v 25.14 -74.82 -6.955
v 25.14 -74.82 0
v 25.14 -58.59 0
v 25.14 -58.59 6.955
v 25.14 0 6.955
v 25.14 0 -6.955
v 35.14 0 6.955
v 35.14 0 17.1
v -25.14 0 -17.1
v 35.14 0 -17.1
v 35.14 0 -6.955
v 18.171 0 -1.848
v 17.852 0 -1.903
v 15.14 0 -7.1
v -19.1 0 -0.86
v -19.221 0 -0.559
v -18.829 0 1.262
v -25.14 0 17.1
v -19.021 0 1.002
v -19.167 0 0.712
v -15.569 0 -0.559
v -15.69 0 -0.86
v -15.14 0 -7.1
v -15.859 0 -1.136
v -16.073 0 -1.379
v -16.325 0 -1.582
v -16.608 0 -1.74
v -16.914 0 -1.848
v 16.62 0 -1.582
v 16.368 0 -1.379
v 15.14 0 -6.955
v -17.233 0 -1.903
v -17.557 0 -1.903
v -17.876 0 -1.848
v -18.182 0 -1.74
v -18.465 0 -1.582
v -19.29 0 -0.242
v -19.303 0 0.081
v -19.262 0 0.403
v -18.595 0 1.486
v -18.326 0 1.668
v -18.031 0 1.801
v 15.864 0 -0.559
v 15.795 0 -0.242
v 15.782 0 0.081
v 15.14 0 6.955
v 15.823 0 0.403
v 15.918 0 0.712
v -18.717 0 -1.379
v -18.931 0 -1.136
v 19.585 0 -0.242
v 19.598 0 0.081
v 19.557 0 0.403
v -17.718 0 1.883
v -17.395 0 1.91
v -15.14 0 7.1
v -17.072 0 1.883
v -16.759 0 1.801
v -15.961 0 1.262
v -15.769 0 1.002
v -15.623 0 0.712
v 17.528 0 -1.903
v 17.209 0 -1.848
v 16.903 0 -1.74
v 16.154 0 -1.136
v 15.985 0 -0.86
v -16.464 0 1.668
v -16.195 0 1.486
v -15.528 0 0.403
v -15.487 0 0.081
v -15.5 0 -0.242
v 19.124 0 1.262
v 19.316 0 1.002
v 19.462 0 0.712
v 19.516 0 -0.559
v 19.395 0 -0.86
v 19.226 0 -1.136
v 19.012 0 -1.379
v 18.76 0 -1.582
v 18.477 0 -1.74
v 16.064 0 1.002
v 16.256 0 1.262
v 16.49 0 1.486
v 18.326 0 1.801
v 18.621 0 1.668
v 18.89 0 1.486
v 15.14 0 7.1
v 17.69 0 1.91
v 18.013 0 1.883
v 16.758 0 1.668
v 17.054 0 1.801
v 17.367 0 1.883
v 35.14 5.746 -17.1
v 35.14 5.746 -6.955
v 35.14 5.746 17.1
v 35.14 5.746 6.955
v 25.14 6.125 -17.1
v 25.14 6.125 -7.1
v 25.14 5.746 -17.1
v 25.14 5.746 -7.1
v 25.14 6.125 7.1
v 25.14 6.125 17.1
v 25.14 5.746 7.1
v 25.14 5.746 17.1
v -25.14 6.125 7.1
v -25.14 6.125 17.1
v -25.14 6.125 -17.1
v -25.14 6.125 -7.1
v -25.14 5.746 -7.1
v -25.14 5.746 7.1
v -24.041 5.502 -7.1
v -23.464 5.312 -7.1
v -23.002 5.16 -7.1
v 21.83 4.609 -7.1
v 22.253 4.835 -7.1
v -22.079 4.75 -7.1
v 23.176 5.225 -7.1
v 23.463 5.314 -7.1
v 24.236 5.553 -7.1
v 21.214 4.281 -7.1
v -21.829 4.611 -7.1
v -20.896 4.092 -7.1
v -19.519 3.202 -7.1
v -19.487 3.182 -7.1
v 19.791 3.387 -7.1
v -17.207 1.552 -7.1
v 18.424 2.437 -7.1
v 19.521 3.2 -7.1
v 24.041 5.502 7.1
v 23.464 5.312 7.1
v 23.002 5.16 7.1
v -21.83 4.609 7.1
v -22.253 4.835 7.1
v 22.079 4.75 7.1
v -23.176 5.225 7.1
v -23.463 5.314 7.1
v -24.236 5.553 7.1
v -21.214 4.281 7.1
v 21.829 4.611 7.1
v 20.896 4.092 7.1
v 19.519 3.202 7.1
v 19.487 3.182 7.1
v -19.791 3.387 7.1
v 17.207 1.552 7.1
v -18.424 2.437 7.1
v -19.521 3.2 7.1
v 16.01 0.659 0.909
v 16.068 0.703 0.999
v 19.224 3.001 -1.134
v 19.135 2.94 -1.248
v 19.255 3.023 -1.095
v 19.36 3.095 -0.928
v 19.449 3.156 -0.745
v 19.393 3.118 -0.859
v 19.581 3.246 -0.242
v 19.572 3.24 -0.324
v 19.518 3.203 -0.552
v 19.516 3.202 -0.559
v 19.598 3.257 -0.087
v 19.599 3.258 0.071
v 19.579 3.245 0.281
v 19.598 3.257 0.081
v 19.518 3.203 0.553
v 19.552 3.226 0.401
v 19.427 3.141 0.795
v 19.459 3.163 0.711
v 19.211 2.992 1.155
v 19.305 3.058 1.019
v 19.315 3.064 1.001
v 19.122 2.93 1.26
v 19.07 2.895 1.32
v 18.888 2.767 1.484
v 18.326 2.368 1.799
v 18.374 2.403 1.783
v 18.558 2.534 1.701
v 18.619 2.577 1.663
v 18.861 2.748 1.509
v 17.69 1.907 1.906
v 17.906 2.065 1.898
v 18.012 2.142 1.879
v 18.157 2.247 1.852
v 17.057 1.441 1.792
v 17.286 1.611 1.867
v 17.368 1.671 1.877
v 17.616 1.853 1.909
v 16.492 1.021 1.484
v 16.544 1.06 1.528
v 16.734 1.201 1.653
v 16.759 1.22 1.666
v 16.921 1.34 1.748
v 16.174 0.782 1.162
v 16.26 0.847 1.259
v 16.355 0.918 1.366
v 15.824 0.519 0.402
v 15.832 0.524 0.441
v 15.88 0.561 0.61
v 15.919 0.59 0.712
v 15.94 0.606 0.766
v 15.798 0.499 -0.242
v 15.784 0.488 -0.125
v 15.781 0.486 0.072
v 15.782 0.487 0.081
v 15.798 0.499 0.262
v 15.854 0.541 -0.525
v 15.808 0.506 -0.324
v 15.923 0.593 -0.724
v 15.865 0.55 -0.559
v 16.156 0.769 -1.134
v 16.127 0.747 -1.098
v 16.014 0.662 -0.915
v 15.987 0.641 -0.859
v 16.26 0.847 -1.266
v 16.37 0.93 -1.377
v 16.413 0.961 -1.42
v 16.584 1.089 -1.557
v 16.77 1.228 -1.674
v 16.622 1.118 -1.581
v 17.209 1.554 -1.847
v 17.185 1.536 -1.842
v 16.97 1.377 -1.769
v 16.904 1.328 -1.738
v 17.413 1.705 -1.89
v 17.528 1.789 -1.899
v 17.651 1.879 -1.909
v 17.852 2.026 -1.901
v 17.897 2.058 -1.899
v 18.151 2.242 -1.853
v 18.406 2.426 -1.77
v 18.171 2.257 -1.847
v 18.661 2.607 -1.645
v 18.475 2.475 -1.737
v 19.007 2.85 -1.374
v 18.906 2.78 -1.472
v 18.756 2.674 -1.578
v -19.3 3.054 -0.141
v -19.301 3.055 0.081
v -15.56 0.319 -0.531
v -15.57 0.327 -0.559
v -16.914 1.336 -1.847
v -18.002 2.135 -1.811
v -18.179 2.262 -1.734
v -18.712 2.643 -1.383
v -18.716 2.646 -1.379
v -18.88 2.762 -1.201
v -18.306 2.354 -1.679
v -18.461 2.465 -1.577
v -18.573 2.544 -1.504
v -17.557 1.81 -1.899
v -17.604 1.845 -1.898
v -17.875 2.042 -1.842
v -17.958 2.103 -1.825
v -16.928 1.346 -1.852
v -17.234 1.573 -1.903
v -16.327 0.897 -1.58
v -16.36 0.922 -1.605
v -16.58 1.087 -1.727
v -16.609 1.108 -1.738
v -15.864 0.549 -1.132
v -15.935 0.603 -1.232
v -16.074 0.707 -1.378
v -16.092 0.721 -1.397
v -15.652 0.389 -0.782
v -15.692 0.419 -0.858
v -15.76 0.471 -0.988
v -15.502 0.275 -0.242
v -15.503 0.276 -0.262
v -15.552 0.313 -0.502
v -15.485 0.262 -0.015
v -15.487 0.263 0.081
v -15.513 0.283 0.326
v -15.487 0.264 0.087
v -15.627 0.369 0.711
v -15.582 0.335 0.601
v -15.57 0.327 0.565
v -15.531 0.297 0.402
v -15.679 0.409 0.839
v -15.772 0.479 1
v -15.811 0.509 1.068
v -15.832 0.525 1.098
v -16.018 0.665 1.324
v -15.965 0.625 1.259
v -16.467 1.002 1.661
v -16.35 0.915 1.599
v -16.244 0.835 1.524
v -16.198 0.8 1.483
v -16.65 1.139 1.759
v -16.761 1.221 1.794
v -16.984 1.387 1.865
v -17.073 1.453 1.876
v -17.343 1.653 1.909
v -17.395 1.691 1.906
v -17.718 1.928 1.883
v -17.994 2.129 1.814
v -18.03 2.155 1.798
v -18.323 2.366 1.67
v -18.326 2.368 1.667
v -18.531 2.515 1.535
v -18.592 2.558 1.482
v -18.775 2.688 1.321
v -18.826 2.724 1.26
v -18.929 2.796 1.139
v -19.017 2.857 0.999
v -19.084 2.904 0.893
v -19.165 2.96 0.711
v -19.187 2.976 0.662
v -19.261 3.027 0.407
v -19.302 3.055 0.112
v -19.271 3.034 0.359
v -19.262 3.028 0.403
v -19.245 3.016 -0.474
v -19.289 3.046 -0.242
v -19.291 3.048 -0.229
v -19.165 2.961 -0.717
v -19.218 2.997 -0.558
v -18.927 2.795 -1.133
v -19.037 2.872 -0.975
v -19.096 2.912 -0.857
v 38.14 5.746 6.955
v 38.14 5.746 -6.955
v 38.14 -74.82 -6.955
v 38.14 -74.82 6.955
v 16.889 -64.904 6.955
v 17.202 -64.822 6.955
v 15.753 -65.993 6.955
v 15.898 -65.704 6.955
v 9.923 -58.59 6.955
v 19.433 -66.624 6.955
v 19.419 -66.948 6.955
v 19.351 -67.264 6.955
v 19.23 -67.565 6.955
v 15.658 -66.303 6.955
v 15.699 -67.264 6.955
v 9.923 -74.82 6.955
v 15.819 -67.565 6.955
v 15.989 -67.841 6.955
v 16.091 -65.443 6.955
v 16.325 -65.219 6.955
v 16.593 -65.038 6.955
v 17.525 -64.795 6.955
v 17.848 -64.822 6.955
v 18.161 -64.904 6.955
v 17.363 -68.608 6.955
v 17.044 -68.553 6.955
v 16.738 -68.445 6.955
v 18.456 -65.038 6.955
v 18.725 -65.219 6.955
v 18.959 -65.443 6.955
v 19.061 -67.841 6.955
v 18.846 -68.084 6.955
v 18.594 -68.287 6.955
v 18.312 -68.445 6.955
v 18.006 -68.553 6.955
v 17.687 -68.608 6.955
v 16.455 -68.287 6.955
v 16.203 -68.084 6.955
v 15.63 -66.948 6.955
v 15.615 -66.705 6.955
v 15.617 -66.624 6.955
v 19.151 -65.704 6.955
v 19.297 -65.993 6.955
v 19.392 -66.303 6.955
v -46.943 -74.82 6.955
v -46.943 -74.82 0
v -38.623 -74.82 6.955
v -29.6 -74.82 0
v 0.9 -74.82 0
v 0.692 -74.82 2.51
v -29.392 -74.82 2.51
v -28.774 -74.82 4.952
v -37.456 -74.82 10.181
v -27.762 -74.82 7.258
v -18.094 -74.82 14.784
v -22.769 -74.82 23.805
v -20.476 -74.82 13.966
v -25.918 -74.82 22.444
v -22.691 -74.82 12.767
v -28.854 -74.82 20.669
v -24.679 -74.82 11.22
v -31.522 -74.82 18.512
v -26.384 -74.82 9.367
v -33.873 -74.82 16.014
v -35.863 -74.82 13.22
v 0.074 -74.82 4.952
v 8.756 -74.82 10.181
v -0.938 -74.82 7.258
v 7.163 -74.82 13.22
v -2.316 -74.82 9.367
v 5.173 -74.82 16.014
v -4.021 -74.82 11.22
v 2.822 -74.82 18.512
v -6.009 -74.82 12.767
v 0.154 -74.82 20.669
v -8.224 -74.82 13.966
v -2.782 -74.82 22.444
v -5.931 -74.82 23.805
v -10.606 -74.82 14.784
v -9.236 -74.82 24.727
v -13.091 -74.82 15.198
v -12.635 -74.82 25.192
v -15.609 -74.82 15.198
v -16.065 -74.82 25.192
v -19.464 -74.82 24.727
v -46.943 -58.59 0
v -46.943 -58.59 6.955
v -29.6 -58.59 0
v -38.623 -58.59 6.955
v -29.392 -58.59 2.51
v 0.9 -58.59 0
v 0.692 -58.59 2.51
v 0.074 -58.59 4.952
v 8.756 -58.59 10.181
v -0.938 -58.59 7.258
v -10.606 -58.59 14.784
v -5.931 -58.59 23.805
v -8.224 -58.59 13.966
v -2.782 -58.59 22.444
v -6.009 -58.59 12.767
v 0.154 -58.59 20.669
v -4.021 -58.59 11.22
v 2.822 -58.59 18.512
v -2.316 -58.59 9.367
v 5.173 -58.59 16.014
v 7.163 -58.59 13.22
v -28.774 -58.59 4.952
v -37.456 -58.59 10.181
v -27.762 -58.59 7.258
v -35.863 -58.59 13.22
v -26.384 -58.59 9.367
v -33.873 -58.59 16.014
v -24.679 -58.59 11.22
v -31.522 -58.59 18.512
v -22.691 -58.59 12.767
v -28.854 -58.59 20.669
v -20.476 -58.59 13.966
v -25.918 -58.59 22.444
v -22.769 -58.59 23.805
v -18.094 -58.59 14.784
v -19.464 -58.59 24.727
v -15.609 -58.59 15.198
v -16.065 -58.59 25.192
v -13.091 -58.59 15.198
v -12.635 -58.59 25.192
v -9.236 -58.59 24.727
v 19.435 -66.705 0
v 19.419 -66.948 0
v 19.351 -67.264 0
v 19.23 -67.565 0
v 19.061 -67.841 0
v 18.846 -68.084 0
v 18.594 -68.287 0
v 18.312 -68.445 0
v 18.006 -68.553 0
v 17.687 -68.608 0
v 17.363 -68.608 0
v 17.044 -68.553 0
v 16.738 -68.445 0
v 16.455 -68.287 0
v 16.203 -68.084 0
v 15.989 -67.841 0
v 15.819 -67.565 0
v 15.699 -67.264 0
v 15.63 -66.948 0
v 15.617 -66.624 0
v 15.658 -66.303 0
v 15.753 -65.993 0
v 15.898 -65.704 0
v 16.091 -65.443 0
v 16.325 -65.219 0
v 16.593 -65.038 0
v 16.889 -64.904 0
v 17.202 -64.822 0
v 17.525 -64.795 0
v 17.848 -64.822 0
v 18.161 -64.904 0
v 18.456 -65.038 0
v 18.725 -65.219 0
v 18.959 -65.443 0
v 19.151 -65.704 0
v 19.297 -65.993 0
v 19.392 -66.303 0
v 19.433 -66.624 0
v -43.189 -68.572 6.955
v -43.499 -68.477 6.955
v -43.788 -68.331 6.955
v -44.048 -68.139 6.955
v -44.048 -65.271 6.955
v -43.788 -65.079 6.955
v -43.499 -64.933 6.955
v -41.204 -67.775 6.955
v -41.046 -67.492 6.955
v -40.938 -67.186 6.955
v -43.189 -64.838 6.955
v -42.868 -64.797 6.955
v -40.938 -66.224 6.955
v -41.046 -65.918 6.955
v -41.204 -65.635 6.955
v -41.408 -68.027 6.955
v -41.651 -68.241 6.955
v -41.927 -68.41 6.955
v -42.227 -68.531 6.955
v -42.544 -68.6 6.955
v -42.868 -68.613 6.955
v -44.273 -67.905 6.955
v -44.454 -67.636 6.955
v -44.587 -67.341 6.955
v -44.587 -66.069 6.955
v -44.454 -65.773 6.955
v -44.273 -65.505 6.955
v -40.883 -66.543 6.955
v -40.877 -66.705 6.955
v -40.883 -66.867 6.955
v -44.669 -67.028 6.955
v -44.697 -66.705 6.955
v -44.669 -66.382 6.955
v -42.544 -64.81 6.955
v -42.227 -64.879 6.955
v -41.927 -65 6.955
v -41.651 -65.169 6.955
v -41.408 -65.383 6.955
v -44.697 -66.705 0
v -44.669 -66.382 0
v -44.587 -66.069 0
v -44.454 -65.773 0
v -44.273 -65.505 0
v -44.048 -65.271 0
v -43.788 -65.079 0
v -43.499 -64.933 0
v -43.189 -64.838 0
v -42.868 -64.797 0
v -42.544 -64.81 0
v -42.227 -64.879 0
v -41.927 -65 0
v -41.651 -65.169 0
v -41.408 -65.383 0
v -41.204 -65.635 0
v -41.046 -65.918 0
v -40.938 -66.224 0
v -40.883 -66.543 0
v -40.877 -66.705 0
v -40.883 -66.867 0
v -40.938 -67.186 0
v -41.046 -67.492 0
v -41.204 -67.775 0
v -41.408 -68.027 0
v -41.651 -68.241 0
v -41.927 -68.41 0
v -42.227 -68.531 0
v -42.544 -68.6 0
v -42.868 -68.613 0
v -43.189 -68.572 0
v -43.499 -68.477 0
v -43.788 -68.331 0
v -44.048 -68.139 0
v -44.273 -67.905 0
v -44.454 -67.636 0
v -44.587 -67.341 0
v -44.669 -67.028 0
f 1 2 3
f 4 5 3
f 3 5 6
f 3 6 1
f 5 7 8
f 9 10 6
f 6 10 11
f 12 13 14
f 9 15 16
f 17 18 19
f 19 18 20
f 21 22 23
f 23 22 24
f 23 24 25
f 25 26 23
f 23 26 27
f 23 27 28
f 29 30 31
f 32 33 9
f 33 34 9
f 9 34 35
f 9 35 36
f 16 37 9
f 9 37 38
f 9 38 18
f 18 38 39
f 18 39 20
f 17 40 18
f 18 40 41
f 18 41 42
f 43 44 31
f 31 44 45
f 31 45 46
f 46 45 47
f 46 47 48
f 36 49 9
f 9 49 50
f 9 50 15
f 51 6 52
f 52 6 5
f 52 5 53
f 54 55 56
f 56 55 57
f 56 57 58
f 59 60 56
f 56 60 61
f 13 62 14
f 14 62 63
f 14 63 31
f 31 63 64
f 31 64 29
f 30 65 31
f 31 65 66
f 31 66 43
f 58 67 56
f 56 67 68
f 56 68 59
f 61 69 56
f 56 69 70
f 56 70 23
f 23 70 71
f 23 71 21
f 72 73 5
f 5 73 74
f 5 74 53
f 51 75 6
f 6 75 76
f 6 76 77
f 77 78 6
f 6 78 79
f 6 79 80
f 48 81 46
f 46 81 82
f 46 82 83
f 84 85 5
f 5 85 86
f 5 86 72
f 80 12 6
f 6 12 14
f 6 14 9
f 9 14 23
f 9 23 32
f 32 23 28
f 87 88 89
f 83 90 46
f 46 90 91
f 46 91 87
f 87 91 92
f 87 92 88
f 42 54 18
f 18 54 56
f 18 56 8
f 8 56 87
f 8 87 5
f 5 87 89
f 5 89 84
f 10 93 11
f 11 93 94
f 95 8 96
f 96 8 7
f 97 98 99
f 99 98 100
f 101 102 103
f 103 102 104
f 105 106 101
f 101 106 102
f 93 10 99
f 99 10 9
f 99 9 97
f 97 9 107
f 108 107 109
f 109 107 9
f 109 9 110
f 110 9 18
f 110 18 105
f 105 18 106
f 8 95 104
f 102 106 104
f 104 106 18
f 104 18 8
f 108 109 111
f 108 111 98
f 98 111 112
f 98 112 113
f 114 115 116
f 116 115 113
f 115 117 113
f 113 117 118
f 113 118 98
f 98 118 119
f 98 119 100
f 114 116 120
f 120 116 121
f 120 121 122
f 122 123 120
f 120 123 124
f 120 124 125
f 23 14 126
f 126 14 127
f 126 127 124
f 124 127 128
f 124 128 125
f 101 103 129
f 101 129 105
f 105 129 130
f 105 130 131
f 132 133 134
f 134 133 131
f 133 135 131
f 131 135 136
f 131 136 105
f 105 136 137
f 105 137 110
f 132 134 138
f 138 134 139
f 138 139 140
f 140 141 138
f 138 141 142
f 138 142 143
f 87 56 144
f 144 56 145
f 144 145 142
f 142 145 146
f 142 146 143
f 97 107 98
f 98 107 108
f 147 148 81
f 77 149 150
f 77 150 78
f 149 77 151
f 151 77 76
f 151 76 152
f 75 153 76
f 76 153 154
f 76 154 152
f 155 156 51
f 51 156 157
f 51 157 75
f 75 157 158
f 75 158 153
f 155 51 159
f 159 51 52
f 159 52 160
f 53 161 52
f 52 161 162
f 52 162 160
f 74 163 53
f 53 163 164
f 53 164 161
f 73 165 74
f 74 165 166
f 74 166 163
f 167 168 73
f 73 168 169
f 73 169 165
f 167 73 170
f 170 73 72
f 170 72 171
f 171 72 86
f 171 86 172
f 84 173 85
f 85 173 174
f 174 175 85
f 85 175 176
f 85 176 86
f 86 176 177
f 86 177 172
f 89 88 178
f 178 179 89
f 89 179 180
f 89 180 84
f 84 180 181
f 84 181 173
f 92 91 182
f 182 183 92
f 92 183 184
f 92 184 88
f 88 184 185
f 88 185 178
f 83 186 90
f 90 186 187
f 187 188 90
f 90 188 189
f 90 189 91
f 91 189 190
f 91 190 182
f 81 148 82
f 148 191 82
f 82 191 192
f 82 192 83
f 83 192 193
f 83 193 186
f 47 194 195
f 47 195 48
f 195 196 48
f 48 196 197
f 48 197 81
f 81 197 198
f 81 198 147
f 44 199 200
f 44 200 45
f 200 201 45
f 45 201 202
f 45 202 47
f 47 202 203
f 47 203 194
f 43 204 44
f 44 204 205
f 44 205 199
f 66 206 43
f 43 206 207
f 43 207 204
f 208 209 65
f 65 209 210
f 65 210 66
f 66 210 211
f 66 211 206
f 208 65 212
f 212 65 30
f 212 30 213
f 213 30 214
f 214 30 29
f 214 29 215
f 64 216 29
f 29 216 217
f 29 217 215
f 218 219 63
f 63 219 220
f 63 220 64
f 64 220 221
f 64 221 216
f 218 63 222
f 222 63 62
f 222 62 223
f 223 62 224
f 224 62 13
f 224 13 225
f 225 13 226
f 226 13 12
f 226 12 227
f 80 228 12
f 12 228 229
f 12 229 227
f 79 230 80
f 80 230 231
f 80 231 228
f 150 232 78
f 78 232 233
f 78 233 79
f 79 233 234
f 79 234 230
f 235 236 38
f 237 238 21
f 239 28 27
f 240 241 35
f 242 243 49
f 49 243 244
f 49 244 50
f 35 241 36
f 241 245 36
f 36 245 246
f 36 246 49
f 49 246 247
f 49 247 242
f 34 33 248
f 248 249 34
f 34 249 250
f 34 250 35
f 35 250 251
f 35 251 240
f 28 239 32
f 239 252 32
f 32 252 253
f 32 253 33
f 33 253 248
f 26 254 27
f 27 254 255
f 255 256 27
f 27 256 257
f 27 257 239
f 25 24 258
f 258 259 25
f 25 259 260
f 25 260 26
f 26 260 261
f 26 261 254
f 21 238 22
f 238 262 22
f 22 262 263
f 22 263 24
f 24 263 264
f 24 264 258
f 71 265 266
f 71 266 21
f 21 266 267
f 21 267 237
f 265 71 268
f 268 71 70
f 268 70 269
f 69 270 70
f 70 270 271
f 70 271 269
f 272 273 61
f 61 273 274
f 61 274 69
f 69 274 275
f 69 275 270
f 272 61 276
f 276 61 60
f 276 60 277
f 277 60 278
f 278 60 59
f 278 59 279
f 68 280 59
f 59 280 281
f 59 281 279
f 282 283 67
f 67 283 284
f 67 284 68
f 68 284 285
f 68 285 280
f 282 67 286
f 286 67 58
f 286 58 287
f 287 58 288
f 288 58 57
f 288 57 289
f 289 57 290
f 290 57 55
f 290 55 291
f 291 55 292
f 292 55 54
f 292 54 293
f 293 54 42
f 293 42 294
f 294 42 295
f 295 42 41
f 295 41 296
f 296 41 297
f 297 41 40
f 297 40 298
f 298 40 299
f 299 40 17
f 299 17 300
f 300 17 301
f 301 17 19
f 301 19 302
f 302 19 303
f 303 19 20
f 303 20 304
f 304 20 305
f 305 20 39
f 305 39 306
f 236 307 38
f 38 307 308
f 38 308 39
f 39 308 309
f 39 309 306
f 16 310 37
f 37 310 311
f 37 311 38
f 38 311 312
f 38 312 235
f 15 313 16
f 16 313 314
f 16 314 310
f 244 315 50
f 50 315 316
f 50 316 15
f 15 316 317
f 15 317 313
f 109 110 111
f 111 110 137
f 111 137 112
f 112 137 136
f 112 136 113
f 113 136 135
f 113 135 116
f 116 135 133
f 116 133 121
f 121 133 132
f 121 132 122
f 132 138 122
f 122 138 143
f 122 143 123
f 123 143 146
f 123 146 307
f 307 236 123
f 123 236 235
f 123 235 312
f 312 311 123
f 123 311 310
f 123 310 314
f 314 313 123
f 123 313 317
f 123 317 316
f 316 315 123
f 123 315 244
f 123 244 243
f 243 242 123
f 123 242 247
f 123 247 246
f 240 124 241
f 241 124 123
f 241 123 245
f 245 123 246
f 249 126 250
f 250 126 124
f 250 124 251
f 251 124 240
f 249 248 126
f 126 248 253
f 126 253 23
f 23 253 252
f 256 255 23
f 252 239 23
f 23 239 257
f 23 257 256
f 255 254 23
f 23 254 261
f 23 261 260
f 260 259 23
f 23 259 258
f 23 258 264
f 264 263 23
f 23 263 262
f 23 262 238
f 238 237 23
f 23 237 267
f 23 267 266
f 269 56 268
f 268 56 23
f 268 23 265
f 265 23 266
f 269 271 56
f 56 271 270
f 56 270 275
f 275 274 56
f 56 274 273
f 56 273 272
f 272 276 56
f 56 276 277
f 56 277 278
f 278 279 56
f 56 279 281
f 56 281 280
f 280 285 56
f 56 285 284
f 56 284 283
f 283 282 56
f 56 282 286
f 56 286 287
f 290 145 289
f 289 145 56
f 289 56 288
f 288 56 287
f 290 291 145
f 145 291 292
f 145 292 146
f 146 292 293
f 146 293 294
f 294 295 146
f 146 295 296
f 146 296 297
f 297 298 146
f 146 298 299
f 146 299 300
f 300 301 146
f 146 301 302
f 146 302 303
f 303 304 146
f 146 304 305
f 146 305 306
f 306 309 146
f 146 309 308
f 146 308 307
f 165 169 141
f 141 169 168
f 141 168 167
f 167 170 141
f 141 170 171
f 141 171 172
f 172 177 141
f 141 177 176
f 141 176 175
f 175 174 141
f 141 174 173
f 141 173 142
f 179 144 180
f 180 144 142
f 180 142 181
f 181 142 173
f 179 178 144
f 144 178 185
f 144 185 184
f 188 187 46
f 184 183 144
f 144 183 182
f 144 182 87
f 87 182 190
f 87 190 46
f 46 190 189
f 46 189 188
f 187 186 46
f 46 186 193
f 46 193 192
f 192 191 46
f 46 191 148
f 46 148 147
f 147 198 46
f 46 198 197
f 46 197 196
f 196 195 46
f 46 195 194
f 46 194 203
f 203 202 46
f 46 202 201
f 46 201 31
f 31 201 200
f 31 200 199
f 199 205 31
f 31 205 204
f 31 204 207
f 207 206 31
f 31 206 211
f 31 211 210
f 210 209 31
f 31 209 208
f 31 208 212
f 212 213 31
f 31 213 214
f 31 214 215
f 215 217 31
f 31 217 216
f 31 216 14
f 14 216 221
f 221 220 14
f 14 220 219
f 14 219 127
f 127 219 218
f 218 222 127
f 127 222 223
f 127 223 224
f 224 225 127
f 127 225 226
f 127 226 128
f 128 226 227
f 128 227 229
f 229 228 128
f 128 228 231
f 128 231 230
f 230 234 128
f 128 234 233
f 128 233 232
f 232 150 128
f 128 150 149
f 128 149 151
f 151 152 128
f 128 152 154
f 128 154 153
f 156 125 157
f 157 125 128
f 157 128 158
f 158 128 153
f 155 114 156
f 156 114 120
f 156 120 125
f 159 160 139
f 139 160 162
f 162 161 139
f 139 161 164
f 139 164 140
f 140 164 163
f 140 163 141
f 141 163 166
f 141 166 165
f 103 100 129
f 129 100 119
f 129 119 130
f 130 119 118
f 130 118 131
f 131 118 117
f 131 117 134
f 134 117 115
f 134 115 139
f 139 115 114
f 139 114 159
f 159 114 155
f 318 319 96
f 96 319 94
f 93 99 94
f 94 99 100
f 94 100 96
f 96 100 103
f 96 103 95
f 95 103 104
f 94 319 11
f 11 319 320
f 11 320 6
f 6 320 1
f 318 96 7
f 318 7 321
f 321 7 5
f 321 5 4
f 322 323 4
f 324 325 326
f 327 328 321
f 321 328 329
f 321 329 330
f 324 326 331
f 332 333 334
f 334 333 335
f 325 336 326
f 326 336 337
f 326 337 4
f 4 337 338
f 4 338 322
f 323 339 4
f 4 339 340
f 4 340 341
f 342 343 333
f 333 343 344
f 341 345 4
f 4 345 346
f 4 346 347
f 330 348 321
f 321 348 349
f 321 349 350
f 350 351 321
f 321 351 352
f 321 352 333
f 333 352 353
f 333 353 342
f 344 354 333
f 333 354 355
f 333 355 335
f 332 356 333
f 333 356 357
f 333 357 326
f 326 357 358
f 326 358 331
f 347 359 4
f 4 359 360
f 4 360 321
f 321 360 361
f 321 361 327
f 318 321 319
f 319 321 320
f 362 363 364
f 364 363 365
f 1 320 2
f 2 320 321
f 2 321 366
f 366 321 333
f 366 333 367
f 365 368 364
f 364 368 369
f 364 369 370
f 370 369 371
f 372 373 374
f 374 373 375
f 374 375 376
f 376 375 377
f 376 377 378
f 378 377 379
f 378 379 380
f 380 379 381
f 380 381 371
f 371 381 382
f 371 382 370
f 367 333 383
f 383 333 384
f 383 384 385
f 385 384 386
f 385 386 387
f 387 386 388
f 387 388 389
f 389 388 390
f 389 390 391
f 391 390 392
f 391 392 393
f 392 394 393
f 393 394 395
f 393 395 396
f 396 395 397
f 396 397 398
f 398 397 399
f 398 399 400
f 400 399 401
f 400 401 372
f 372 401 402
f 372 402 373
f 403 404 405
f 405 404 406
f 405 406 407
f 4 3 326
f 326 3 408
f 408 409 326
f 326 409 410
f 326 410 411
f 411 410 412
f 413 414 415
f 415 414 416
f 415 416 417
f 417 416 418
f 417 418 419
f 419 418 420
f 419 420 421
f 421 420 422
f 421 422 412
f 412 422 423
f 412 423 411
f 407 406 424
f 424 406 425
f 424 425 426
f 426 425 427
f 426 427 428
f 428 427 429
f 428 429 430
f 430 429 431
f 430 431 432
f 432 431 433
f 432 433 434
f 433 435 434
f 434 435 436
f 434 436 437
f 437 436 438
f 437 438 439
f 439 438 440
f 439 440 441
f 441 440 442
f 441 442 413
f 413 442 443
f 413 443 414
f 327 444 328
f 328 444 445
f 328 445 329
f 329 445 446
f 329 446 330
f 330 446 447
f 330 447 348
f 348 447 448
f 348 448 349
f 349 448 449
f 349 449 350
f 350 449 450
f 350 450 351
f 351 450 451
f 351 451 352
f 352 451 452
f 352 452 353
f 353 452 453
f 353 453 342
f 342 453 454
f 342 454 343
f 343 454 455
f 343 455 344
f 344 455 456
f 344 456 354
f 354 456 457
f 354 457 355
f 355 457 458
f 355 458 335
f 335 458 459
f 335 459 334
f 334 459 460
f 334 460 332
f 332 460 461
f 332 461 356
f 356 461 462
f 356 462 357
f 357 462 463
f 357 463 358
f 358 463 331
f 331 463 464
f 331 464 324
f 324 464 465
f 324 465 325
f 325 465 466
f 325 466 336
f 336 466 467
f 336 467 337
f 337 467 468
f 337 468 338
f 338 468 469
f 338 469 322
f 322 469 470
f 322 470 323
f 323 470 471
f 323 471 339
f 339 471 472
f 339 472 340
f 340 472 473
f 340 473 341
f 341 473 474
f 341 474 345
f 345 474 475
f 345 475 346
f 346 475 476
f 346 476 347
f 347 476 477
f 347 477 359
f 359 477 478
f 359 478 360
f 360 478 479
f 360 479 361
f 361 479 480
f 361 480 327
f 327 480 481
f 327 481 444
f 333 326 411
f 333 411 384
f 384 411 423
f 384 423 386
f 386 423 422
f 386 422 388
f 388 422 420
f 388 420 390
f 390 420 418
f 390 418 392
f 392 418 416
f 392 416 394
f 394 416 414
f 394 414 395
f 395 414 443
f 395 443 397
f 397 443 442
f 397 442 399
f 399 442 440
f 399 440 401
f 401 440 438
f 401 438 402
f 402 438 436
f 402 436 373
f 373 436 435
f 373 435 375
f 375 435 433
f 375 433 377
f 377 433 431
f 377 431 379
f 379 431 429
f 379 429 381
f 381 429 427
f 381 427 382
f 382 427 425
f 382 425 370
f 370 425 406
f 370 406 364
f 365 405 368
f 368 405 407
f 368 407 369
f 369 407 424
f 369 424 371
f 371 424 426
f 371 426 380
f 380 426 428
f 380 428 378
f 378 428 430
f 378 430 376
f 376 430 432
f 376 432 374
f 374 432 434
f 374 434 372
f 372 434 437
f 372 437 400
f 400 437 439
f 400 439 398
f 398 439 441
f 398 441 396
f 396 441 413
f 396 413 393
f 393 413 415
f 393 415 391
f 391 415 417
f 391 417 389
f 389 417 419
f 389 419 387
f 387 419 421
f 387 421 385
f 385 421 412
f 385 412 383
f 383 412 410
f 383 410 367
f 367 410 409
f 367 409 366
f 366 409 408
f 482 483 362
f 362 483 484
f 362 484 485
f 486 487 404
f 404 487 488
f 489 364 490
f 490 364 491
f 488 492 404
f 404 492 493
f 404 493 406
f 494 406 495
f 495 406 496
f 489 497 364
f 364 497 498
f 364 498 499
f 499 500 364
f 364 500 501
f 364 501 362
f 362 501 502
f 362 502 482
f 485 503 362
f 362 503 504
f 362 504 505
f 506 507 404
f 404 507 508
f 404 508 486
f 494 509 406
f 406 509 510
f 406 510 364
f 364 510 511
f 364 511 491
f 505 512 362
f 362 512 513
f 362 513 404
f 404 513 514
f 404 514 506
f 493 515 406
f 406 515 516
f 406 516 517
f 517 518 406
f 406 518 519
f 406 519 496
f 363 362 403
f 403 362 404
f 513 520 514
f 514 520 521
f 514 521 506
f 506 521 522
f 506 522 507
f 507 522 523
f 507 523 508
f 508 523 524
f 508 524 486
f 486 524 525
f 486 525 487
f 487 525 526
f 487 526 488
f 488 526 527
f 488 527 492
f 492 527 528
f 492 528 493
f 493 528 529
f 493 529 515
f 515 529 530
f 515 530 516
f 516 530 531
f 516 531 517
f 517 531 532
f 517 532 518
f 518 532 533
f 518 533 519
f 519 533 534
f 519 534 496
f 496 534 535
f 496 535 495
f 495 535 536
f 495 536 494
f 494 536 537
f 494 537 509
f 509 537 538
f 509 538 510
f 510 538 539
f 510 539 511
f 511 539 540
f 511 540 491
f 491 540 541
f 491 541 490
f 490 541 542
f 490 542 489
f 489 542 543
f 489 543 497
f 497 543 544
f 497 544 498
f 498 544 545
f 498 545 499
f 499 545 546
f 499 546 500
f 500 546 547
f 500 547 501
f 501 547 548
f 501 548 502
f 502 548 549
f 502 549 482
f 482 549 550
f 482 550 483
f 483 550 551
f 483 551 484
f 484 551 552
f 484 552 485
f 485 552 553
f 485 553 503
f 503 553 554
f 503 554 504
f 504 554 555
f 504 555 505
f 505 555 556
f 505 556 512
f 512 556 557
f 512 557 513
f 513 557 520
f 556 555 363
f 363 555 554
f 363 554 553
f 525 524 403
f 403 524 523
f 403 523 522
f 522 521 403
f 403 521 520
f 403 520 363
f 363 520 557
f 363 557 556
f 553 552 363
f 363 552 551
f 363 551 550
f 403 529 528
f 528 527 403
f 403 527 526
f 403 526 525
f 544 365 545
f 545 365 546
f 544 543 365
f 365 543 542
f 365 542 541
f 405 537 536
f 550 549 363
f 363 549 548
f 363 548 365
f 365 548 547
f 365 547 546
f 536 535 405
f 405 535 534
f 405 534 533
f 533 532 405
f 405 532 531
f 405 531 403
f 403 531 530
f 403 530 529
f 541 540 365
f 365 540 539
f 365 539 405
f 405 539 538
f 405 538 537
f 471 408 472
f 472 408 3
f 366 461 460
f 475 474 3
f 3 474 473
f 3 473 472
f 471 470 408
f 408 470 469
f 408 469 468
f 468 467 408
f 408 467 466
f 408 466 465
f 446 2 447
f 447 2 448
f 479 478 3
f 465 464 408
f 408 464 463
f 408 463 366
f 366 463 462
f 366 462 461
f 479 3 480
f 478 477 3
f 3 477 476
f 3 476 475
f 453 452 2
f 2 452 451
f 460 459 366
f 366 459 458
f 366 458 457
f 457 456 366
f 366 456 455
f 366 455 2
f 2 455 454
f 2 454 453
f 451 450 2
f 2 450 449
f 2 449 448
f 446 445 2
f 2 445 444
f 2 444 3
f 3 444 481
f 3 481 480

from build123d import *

# Parameters (mm, degrees)
SKETCH_1_W                = 50.28
SKETCH_1_H                = 34.2
SKETCH_1_W_2              = 30.28
SKETCH_1_H_2              = 14.2
EXTRUDE_1_DEPTH           = 12.25
SKETCH_4_W                = 13
SKETCH_4_H                = 13.91
EXTRUDE_1_2_DEPTH         = 74.82
SKETCH_5_W                = 13.91
SKETCH_5_H                = 16.23
EXTRUDE_2_DEPTH           = 16
SKETCH_7_R                = 25.25
SKETCH_7_R_2              = 15.25
EXTRUDE_2_2_DEPTH         = 16.23
SKETCH_15_R               = 1.91
CUT_EXTRUDE_6_DEPTH       = 97.964478439
SKETCH_18_W               = 49.344544624
SKETCH_18_H               = 6.125
CUT_EXTRUDE_8_DEPTH       = 101.789238284
SKETCH_19_W               = 34.2
SKETCH_19_H               = 6.125
CUT_EXTRUDE_9_DEPTH       = 10
SKETCH_21_R               = 1.91
CUT_EXTRUDE_10_DEPTH      = 10
SKETCH_20_R               = 1.91
CUT_EXTRUDE_11_DEPTH      = 10
FILLET_START              = -7.1
FILLET_1_DEPTH            = 14.2
FILLET_2_DEPTH            = 14.2
SKETCH_29_W               = 13.91
SKETCH_29_H               = 74.82
EXTRUDE_5_DEPTH           = 10
SKETCH_30_W               = 10
SKETCH_30_H               = 58.59
CUT_EXTRUDE_13_DEPTH      = 97.964478439
SKETCH_32_W               = 34.2
SKETCH_32_H               = 5.745736365
EXTRUDE_6_DEPTH           = 10
CUT_EXTRUDE_16_DEPTH      = 50
CUT_EXTRUDE_16_DEPTH_BACK = 50
SKETCH_38_W               = 116.985630298
SKETCH_38_H               = 80.538350638
SKETCH_41_W               = 13.91
SKETCH_41_H               = 5.745736365
EXTRUDE_7_DEPTH           = 3
SKETCH_42_W               = 13
SKETCH_42_H               = 13.91
EXTRUDE_8_DEPTH           = 74.82
SKETCH_43_W               = 13.91
SKETCH_43_H               = 16.23
EXTRUDE_9_DEPTH           = 15.22
SKETCH_44_R               = 1.91
CUT_EXTRUDE_17_DEPTH      = 15.22
SKETCH_46_R               = 25.25
SKETCH_46_R_2             = 15.25
EXTRUDE_6_2_DEPTH         = 16.23
EXTRUDE_10_DEPTH          = 7.22
EXTRUDE_10_DEPTH_BACK     = 10
SKETCH_47_W               = 13.91
SKETCH_47_H               = 16.23
SKETCH_50_W               = 3.056753925
SKETCH_50_H               = 16.23
CUT_EXTRUDE_18_DEPTH      = 96.578211037
SKETCH_51_R               = 1.91
CUT_EXTRUDE_19_DEPTH      = 95.015226304
SKETCH_52_W               = 92.841945613
SKETCH_52_H               = 30
CUT_EXTRUDE_20_DEPTH      = 84.840694713


with BuildPart() as part:
    # 草圖1 → Extrude 1 (new body)
    with BuildSketch(Plane(origin=(0, 0, 0), x_dir=(1, 0, 0), z_dir=(0, 1, 0))):
        Rectangle(SKETCH_1_W, SKETCH_1_H)
        Rectangle(SKETCH_1_W_2, SKETCH_1_H_2, mode=Mode.SUBTRACT)
    extrude(amount=EXTRUDE_1_DEPTH)

    # 草圖4 → Extrude 1 2 (add)
    with BuildSketch(Plane.XZ):
        with Locations((18.64, 0)):
            Rectangle(SKETCH_4_W, SKETCH_4_H)
    extrude(amount=EXTRUDE_1_2_DEPTH)

    # 草圖5 → Extrude 2 (add)
    with BuildSketch(Plane.ZY.offset(-12.14)):
        with Locations((0, -66.705)):
            Rectangle(SKETCH_5_W, SKETCH_5_H)
    extrude(amount=EXTRUDE_2_DEPTH)

    # 草圖7 → Extrude 2 2 (add)
    with BuildSketch(Plane(origin=(3.626674765, -74.82, 0), x_dir=(1, 0, 0), z_dir=(0, -1, 0))):
        with Locations((-30.978154344, 0)):
            Circle(SKETCH_7_R)
        with Locations((-30.978154344, 0)):
            Circle(SKETCH_7_R_2, mode=Mode.SUBTRACT)
    extrude(amount=-EXTRUDE_2_2_DEPTH)

    # 草圖15 → 除料-伸長6 (cut, through all)
    with BuildSketch(Plane(origin=(0, 0, -6.955), x_dir=(-1, 0, 0), z_dir=(0, 0, -1))):
        with Locations((-4.530883248, -66.705)):
            Circle(SKETCH_15_R)
    extrude(amount=-CUT_EXTRUDE_6_DEPTH, mode=Mode.SUBTRACT)

    # 草圖18 → 除料-伸長8 (cut, through all)
    with BuildSketch(Plane(origin=(0, 0, -17.1), x_dir=(-1, 0, 0), z_dir=(0, 0, -1))):
        with Locations((0.467727688, 9.1875)):
            Rectangle(SKETCH_18_W, SKETCH_18_H)
    extrude(amount=-CUT_EXTRUDE_8_DEPTH, mode=Mode.SUBTRACT)

    # 草圖19 → 除料-伸長9 (cut)
    with BuildSketch(Plane.ZY.offset(-24.204544624)):
        with Locations((0, 9.1875)):
            Rectangle(SKETCH_19_W, SKETCH_19_H)
    extrude(amount=-CUT_EXTRUDE_9_DEPTH, mode=Mode.SUBTRACT)

    # 草圖21 → 除料-伸長10 (cut)
    with BuildSketch(Plane(origin=(0, 6.125, 0), x_dir=(1, 0, 0), z_dir=(0, 1, 0))):
        with Locations(Location((17.69, 0, 0), (0, 0, 270))):
            Circle(SKETCH_21_R)
    extrude(amount=-CUT_EXTRUDE_10_DEPTH, mode=Mode.SUBTRACT)

    # 草圖20 → 除料-伸長11 (cut)
    with BuildSketch(Plane(origin=(0, 6.125, 0), x_dir=(1, 0, 0), z_dir=(0, 1, 0))):
        with Locations(Location((-17.395, 0, 0), (0, 0, 270))):
            Circle(SKETCH_20_R)
    extrude(amount=-CUT_EXTRUDE_11_DEPTH, mode=Mode.SUBTRACT)

    # 圓角1: read off the stored shape, not the designer's step
    # 圓角1 outline → 圓角1 (cut)
    with BuildSketch(Plane.XY.offset(FILLET_START)):
        with BuildLine():
            add(Edge.make_bspline(
                [(-15.14, 0), (-21.974170252, 5.199829476), (-25.14, 5.745736365)],
                knots=[0, 0, 0, 0.664102345, 0.664102345, 0.664102345], degree=2, weights=[1, 2.223777218, 1.822127795]))
            Line((-15.14, 0), (-15.14, 6.125))
            Line((-15.14, 6.125), (-25.14, 6.125))
            Line((-25.14, 6.125), (-25.14, 5.745736365))
        make_face()
    extrude(amount=FILLET_1_DEPTH, mode=Mode.SUBTRACT)

    # 圓角2: read off the stored shape, not the designer's step
    # 圓角2 outline → 圓角2 (cut)
    with BuildSketch(Plane.XY.offset(FILLET_START)):
        with BuildLine():
            Line((15.14, 6.125), (15.14, 0))
            add(Edge.make_bspline(
                [(15.14, 0), (21.974170252, 5.199829476), (25.14, 5.745736365)],
                knots=[0, 0, 0, 0.664102345, 0.664102345, 0.664102345], degree=2, weights=[1, 2.223777218, 1.822127795]))
            Line((25.14, 5.745736365), (25.14, 6.125))
            Line((25.14, 6.125), (15.14, 6.125))
        make_face()
    extrude(amount=FILLET_2_DEPTH, mode=Mode.SUBTRACT)

    # 草圖29 → 填料-伸長5 (add)
    with BuildSketch(Plane(origin=(25.14, 0, 0), x_dir=(0, 0, -1), z_dir=(1, 0, 0))):
        with Locations((0, -37.41)):
            Rectangle(SKETCH_29_W, SKETCH_29_H)
    extrude(amount=EXTRUDE_5_DEPTH)

    # 草圖30 → 除料-伸長13 (cut, through all)
    with BuildSketch(Plane.XY.offset(6.955)):
        with Locations((17.14, -29.295)):
            Rectangle(SKETCH_30_W, SKETCH_30_H)
    extrude(amount=-CUT_EXTRUDE_13_DEPTH, mode=Mode.SUBTRACT)

    # 草圖32 → Extrude 6 (add)
    with BuildSketch(Plane(origin=(25.14, 0, 0), x_dir=(0, 0, -1), z_dir=(1, 0, 0))):
        with Locations((0, 2.872868182)):
            Rectangle(SKETCH_32_W, SKETCH_32_H)
    extrude(amount=EXTRUDE_6_DEPTH)

    # 草圖38 → 除料-伸長16 (cut, two sides: drawn at the far end of the back side and taken through both)
    with BuildSketch(Plane(origin=(0, 0, -6.955), x_dir=(-1, 0, 0), z_dir=(0, 0, -1)).offset(-CUT_EXTRUDE_16_DEPTH_BACK)):
        with Locations((7.268869252, -40.269175319)):
            Rectangle(SKETCH_38_W, SKETCH_38_H)
    extrude(amount=CUT_EXTRUDE_16_DEPTH + CUT_EXTRUDE_16_DEPTH_BACK, mode=Mode.SUBTRACT)

    # 草圖41 → 填料-伸長7 (add)
    with BuildSketch(Plane(origin=(35.14, 0, 0), x_dir=(0, 0, -1), z_dir=(1, 0, 0))):
        with Locations((0, 2.872868182)):
            Rectangle(SKETCH_41_W, SKETCH_41_H)
    extrude(amount=EXTRUDE_7_DEPTH)

    # 草圖42 → 填料-伸長8 (add)
    with BuildSketch(Plane(origin=(0, 0, 0), x_dir=(-1, 0, 0), z_dir=(0, -1, 0))):
        with Locations((-31.64, 0)):
            Rectangle(SKETCH_42_W, SKETCH_42_H)
    extrude(amount=EXTRUDE_8_DEPTH)

    # 草圖43 → 填料-伸長9 (add)
    with BuildSketch(Plane.ZY.offset(-25.14)):
        with Locations((0, -66.705)):
            Rectangle(SKETCH_43_W, SKETCH_43_H)
    extrude(amount=EXTRUDE_9_DEPTH)

    # 草圖44 → 除料-伸長17 (cut)
    with BuildSketch(Plane(origin=(0, 0, -6.955), x_dir=(-1, 0, 0), z_dir=(0, 0, -1))):
        with Locations(Location((-17.524895264, -66.705, 0), (0, 0, 90))):
            Circle(SKETCH_44_R)
    extrude(amount=-CUT_EXTRUDE_17_DEPTH, mode=Mode.SUBTRACT)

    # 草圖46 → Extrude 6 2 (add)
    with BuildSketch(Plane(origin=(0, -58.59, 0), x_dir=(1, 0, 0), z_dir=(0, 1, 0))):
        with Locations((-14.35, 0)):
            Circle(SKETCH_46_R)
        with Locations((-14.35, 0)):
            Circle(SKETCH_46_R_2, mode=Mode.SUBTRACT)
    extrude(amount=-EXTRUDE_6_2_DEPTH)

    # 草圖47 → 填料-伸長10 (add, two sides: drawn at the far end of the back side and taken through both)
    with BuildSketch(Plane(origin=(-40, 0, 0), x_dir=(0, 0, -1), z_dir=(1, 0, 0)).offset(-EXTRUDE_10_DEPTH_BACK)):
        with Locations((0, -66.705)):
            Rectangle(SKETCH_47_W, SKETCH_47_H)
    extrude(amount=EXTRUDE_10_DEPTH + EXTRUDE_10_DEPTH_BACK)

    # 草圖50 → 除料-伸長18 (cut, through all)
    with BuildSketch(Plane(origin=(0, 0, -6.955), x_dir=(-1, 0, 0), z_dir=(0, 0, -1))):
        with Locations((48.471623038, -66.705)):
            Rectangle(SKETCH_50_W, SKETCH_50_H)
    extrude(amount=-CUT_EXTRUDE_18_DEPTH, mode=Mode.SUBTRACT)

    # 草圖51 → 除料-伸長19 (cut, through all)
    with BuildSketch(Plane(origin=(0, 0, -6.955), x_dir=(-1, 0, 0), z_dir=(0, 0, -1))):
        with Locations((42.786508152, -66.705)):
            Circle(SKETCH_51_R)
    extrude(amount=-CUT_EXTRUDE_19_DEPTH, mode=Mode.SUBTRACT)

    # 草圖52 → 除料-伸長20 (cut, through all)
    with BuildSketch(Plane(origin=(0, -58.59, 0), x_dir=(1, 0, 0), z_dir=(0, 1, 0))):
        with Locations((-21.280972807, 15)):
            Rectangle(SKETCH_52_W, SKETCH_52_H)
    extrude(amount=-CUT_EXTRUDE_20_DEPTH, mode=Mode.SUBTRACT)


solid = part.part
